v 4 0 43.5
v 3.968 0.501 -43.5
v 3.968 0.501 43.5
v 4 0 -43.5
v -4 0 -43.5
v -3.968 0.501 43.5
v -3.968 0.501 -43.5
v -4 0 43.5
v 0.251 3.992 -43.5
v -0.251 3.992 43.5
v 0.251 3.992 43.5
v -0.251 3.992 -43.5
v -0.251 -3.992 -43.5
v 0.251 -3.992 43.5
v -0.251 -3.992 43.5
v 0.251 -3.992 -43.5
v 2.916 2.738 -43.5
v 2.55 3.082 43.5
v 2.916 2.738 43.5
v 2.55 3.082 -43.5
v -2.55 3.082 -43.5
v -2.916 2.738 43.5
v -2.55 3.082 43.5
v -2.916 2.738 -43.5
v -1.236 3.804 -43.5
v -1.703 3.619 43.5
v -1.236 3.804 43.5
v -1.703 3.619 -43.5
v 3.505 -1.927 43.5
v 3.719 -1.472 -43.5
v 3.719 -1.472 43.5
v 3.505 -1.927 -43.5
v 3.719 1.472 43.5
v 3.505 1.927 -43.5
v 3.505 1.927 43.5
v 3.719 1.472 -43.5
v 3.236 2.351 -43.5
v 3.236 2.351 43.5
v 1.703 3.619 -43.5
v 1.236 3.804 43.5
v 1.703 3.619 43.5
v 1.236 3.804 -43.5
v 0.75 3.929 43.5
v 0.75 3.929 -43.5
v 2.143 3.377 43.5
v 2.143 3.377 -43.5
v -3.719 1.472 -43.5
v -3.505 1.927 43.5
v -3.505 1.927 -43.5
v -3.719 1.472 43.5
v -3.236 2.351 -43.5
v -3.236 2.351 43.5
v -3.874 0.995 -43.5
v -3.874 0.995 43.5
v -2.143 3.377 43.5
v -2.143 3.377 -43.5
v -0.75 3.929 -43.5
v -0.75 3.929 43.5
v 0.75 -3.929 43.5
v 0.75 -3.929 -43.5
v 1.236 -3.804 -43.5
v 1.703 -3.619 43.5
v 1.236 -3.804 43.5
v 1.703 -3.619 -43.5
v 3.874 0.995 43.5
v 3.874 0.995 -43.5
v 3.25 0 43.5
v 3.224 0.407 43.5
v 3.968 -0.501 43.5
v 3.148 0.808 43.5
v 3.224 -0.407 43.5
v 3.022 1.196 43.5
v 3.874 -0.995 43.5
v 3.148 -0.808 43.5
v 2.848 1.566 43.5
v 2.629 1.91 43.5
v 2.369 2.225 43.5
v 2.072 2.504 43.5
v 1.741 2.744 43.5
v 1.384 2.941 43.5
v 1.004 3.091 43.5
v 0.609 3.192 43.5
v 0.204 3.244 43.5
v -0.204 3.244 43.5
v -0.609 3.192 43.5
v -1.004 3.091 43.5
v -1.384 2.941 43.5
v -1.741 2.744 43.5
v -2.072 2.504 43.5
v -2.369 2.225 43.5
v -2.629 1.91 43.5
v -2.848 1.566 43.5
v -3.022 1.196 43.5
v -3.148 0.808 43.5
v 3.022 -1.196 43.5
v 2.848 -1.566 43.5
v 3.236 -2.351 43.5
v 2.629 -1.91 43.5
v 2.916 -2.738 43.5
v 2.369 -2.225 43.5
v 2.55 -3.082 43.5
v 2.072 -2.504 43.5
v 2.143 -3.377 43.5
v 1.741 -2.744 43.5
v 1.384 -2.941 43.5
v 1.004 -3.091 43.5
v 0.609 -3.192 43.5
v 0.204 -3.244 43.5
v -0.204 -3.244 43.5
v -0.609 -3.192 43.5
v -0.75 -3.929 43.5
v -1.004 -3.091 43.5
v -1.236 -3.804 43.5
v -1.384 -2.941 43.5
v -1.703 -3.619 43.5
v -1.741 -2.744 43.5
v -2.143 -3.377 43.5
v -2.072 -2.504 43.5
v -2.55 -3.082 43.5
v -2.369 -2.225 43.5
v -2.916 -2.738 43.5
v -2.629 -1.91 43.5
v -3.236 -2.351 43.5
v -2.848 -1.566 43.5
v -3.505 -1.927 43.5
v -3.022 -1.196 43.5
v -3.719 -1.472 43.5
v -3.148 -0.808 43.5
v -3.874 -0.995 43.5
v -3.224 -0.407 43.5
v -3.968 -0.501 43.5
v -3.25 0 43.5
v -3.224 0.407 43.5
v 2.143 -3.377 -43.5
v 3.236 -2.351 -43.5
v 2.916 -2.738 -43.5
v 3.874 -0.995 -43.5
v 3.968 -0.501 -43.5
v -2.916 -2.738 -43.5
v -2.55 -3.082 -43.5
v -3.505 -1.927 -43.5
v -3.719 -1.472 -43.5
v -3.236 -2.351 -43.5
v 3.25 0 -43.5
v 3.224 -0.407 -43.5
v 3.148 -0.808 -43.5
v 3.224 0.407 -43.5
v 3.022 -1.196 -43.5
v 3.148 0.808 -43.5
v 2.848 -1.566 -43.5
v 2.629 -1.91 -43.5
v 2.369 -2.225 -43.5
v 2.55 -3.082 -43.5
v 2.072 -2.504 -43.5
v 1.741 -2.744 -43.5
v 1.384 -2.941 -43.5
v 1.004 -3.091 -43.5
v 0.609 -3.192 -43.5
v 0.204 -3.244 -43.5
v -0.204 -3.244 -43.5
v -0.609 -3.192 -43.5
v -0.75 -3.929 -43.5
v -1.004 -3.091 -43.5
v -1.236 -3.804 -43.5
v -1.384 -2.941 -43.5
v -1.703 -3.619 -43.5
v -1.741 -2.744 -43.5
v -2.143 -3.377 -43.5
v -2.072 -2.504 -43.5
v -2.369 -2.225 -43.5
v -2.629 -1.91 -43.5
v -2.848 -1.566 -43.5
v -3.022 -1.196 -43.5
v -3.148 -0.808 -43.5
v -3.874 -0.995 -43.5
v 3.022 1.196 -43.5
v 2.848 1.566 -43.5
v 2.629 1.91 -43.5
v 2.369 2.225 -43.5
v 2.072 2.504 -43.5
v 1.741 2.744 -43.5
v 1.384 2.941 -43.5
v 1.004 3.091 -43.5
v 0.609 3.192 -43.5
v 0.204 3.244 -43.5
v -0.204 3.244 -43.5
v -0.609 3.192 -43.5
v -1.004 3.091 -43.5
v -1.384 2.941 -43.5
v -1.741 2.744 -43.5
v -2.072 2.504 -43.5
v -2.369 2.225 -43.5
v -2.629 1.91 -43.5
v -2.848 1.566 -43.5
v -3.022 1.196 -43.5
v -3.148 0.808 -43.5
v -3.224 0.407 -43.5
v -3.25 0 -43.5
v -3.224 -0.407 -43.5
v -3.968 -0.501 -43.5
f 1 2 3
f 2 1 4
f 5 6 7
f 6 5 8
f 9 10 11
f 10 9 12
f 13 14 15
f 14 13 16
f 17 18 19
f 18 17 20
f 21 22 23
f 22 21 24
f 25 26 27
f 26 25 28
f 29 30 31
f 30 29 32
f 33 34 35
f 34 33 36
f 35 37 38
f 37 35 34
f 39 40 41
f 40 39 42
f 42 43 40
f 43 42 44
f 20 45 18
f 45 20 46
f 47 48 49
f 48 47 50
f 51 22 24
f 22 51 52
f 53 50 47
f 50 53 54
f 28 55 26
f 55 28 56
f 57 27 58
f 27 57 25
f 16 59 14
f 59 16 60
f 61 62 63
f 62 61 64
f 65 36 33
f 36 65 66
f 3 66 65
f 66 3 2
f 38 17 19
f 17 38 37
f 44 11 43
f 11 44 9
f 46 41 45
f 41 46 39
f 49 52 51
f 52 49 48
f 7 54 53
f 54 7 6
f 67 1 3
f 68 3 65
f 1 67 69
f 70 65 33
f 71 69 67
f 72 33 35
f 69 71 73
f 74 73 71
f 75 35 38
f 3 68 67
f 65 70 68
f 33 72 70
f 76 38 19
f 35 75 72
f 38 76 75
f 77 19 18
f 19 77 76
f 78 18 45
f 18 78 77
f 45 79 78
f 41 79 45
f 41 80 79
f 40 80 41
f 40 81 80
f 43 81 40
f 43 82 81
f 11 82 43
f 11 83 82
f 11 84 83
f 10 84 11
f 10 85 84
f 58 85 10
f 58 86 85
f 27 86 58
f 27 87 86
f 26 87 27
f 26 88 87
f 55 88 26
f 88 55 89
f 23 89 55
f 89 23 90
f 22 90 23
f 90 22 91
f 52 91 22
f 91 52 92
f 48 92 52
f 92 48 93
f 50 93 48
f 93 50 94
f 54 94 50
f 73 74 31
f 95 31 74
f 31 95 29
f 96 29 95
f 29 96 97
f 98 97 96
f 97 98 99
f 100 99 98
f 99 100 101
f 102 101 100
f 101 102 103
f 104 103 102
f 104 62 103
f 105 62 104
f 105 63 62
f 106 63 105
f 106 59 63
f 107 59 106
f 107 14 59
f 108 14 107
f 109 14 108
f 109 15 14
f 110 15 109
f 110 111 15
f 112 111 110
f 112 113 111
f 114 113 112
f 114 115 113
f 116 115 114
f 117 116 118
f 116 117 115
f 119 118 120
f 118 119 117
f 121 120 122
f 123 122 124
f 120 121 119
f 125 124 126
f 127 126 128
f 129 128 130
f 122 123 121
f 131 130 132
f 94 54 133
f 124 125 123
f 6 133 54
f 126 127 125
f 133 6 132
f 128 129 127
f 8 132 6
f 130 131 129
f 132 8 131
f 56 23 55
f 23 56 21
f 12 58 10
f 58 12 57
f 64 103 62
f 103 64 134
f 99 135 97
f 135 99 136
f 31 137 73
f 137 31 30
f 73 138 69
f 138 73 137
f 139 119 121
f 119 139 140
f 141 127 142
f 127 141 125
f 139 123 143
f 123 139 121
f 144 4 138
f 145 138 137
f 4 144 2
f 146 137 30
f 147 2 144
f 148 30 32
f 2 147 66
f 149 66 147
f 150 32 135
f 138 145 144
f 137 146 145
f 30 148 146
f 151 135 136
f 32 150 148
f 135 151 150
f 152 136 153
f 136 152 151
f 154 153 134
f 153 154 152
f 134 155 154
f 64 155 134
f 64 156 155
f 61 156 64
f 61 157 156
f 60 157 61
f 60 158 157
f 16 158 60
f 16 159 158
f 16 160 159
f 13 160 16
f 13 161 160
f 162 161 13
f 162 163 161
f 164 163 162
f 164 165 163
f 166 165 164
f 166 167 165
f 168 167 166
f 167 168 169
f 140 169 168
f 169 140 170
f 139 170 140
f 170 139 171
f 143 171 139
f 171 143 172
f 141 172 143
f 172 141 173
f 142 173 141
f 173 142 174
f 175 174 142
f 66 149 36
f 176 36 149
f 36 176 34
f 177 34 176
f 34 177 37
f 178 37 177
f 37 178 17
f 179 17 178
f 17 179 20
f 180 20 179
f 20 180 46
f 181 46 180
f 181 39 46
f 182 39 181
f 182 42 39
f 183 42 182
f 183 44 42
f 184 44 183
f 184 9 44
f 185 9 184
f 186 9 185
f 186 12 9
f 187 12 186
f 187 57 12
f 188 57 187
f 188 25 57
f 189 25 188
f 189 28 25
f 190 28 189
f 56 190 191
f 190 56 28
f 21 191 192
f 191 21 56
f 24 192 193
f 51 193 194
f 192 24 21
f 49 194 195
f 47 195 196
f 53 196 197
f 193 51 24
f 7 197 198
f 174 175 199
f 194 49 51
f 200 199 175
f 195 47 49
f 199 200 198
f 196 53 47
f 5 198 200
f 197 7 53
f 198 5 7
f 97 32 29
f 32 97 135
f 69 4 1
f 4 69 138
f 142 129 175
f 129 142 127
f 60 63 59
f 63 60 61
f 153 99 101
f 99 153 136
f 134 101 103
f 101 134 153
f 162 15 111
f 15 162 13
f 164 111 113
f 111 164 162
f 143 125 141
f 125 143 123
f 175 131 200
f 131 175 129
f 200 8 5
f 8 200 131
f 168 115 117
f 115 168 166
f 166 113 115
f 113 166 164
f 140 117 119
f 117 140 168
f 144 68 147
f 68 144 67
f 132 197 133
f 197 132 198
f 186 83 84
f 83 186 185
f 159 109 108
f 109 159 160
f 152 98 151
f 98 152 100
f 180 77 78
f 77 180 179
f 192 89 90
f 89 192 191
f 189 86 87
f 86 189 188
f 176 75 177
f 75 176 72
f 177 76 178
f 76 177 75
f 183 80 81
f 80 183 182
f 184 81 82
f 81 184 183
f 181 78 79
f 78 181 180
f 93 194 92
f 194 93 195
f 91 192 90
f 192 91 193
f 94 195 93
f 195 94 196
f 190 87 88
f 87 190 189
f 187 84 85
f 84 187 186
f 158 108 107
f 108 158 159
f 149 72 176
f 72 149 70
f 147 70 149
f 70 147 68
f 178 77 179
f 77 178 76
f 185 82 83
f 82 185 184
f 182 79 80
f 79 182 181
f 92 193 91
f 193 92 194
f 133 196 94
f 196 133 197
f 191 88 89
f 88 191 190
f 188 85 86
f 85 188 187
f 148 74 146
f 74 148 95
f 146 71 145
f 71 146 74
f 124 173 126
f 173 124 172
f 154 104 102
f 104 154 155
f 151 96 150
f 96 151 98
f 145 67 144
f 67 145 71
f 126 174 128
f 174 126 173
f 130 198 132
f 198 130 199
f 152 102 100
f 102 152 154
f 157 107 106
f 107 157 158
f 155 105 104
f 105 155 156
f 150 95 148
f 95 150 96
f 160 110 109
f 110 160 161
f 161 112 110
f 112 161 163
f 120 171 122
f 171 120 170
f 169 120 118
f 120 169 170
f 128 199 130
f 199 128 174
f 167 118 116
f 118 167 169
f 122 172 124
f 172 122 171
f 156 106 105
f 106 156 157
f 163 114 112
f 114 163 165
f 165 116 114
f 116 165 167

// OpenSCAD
$fn = 50;


difference() {
	union() {
		translate(v = [0, 0, -43.5000000000]) {
			cylinder(h = 87, r = 4.0000000000);
		}
	}
	union() {
		translate(v = [0, 0, -100.0000000000]) {
			cylinder(h = 200, r = 3.2500000000);
		}
	}
}
